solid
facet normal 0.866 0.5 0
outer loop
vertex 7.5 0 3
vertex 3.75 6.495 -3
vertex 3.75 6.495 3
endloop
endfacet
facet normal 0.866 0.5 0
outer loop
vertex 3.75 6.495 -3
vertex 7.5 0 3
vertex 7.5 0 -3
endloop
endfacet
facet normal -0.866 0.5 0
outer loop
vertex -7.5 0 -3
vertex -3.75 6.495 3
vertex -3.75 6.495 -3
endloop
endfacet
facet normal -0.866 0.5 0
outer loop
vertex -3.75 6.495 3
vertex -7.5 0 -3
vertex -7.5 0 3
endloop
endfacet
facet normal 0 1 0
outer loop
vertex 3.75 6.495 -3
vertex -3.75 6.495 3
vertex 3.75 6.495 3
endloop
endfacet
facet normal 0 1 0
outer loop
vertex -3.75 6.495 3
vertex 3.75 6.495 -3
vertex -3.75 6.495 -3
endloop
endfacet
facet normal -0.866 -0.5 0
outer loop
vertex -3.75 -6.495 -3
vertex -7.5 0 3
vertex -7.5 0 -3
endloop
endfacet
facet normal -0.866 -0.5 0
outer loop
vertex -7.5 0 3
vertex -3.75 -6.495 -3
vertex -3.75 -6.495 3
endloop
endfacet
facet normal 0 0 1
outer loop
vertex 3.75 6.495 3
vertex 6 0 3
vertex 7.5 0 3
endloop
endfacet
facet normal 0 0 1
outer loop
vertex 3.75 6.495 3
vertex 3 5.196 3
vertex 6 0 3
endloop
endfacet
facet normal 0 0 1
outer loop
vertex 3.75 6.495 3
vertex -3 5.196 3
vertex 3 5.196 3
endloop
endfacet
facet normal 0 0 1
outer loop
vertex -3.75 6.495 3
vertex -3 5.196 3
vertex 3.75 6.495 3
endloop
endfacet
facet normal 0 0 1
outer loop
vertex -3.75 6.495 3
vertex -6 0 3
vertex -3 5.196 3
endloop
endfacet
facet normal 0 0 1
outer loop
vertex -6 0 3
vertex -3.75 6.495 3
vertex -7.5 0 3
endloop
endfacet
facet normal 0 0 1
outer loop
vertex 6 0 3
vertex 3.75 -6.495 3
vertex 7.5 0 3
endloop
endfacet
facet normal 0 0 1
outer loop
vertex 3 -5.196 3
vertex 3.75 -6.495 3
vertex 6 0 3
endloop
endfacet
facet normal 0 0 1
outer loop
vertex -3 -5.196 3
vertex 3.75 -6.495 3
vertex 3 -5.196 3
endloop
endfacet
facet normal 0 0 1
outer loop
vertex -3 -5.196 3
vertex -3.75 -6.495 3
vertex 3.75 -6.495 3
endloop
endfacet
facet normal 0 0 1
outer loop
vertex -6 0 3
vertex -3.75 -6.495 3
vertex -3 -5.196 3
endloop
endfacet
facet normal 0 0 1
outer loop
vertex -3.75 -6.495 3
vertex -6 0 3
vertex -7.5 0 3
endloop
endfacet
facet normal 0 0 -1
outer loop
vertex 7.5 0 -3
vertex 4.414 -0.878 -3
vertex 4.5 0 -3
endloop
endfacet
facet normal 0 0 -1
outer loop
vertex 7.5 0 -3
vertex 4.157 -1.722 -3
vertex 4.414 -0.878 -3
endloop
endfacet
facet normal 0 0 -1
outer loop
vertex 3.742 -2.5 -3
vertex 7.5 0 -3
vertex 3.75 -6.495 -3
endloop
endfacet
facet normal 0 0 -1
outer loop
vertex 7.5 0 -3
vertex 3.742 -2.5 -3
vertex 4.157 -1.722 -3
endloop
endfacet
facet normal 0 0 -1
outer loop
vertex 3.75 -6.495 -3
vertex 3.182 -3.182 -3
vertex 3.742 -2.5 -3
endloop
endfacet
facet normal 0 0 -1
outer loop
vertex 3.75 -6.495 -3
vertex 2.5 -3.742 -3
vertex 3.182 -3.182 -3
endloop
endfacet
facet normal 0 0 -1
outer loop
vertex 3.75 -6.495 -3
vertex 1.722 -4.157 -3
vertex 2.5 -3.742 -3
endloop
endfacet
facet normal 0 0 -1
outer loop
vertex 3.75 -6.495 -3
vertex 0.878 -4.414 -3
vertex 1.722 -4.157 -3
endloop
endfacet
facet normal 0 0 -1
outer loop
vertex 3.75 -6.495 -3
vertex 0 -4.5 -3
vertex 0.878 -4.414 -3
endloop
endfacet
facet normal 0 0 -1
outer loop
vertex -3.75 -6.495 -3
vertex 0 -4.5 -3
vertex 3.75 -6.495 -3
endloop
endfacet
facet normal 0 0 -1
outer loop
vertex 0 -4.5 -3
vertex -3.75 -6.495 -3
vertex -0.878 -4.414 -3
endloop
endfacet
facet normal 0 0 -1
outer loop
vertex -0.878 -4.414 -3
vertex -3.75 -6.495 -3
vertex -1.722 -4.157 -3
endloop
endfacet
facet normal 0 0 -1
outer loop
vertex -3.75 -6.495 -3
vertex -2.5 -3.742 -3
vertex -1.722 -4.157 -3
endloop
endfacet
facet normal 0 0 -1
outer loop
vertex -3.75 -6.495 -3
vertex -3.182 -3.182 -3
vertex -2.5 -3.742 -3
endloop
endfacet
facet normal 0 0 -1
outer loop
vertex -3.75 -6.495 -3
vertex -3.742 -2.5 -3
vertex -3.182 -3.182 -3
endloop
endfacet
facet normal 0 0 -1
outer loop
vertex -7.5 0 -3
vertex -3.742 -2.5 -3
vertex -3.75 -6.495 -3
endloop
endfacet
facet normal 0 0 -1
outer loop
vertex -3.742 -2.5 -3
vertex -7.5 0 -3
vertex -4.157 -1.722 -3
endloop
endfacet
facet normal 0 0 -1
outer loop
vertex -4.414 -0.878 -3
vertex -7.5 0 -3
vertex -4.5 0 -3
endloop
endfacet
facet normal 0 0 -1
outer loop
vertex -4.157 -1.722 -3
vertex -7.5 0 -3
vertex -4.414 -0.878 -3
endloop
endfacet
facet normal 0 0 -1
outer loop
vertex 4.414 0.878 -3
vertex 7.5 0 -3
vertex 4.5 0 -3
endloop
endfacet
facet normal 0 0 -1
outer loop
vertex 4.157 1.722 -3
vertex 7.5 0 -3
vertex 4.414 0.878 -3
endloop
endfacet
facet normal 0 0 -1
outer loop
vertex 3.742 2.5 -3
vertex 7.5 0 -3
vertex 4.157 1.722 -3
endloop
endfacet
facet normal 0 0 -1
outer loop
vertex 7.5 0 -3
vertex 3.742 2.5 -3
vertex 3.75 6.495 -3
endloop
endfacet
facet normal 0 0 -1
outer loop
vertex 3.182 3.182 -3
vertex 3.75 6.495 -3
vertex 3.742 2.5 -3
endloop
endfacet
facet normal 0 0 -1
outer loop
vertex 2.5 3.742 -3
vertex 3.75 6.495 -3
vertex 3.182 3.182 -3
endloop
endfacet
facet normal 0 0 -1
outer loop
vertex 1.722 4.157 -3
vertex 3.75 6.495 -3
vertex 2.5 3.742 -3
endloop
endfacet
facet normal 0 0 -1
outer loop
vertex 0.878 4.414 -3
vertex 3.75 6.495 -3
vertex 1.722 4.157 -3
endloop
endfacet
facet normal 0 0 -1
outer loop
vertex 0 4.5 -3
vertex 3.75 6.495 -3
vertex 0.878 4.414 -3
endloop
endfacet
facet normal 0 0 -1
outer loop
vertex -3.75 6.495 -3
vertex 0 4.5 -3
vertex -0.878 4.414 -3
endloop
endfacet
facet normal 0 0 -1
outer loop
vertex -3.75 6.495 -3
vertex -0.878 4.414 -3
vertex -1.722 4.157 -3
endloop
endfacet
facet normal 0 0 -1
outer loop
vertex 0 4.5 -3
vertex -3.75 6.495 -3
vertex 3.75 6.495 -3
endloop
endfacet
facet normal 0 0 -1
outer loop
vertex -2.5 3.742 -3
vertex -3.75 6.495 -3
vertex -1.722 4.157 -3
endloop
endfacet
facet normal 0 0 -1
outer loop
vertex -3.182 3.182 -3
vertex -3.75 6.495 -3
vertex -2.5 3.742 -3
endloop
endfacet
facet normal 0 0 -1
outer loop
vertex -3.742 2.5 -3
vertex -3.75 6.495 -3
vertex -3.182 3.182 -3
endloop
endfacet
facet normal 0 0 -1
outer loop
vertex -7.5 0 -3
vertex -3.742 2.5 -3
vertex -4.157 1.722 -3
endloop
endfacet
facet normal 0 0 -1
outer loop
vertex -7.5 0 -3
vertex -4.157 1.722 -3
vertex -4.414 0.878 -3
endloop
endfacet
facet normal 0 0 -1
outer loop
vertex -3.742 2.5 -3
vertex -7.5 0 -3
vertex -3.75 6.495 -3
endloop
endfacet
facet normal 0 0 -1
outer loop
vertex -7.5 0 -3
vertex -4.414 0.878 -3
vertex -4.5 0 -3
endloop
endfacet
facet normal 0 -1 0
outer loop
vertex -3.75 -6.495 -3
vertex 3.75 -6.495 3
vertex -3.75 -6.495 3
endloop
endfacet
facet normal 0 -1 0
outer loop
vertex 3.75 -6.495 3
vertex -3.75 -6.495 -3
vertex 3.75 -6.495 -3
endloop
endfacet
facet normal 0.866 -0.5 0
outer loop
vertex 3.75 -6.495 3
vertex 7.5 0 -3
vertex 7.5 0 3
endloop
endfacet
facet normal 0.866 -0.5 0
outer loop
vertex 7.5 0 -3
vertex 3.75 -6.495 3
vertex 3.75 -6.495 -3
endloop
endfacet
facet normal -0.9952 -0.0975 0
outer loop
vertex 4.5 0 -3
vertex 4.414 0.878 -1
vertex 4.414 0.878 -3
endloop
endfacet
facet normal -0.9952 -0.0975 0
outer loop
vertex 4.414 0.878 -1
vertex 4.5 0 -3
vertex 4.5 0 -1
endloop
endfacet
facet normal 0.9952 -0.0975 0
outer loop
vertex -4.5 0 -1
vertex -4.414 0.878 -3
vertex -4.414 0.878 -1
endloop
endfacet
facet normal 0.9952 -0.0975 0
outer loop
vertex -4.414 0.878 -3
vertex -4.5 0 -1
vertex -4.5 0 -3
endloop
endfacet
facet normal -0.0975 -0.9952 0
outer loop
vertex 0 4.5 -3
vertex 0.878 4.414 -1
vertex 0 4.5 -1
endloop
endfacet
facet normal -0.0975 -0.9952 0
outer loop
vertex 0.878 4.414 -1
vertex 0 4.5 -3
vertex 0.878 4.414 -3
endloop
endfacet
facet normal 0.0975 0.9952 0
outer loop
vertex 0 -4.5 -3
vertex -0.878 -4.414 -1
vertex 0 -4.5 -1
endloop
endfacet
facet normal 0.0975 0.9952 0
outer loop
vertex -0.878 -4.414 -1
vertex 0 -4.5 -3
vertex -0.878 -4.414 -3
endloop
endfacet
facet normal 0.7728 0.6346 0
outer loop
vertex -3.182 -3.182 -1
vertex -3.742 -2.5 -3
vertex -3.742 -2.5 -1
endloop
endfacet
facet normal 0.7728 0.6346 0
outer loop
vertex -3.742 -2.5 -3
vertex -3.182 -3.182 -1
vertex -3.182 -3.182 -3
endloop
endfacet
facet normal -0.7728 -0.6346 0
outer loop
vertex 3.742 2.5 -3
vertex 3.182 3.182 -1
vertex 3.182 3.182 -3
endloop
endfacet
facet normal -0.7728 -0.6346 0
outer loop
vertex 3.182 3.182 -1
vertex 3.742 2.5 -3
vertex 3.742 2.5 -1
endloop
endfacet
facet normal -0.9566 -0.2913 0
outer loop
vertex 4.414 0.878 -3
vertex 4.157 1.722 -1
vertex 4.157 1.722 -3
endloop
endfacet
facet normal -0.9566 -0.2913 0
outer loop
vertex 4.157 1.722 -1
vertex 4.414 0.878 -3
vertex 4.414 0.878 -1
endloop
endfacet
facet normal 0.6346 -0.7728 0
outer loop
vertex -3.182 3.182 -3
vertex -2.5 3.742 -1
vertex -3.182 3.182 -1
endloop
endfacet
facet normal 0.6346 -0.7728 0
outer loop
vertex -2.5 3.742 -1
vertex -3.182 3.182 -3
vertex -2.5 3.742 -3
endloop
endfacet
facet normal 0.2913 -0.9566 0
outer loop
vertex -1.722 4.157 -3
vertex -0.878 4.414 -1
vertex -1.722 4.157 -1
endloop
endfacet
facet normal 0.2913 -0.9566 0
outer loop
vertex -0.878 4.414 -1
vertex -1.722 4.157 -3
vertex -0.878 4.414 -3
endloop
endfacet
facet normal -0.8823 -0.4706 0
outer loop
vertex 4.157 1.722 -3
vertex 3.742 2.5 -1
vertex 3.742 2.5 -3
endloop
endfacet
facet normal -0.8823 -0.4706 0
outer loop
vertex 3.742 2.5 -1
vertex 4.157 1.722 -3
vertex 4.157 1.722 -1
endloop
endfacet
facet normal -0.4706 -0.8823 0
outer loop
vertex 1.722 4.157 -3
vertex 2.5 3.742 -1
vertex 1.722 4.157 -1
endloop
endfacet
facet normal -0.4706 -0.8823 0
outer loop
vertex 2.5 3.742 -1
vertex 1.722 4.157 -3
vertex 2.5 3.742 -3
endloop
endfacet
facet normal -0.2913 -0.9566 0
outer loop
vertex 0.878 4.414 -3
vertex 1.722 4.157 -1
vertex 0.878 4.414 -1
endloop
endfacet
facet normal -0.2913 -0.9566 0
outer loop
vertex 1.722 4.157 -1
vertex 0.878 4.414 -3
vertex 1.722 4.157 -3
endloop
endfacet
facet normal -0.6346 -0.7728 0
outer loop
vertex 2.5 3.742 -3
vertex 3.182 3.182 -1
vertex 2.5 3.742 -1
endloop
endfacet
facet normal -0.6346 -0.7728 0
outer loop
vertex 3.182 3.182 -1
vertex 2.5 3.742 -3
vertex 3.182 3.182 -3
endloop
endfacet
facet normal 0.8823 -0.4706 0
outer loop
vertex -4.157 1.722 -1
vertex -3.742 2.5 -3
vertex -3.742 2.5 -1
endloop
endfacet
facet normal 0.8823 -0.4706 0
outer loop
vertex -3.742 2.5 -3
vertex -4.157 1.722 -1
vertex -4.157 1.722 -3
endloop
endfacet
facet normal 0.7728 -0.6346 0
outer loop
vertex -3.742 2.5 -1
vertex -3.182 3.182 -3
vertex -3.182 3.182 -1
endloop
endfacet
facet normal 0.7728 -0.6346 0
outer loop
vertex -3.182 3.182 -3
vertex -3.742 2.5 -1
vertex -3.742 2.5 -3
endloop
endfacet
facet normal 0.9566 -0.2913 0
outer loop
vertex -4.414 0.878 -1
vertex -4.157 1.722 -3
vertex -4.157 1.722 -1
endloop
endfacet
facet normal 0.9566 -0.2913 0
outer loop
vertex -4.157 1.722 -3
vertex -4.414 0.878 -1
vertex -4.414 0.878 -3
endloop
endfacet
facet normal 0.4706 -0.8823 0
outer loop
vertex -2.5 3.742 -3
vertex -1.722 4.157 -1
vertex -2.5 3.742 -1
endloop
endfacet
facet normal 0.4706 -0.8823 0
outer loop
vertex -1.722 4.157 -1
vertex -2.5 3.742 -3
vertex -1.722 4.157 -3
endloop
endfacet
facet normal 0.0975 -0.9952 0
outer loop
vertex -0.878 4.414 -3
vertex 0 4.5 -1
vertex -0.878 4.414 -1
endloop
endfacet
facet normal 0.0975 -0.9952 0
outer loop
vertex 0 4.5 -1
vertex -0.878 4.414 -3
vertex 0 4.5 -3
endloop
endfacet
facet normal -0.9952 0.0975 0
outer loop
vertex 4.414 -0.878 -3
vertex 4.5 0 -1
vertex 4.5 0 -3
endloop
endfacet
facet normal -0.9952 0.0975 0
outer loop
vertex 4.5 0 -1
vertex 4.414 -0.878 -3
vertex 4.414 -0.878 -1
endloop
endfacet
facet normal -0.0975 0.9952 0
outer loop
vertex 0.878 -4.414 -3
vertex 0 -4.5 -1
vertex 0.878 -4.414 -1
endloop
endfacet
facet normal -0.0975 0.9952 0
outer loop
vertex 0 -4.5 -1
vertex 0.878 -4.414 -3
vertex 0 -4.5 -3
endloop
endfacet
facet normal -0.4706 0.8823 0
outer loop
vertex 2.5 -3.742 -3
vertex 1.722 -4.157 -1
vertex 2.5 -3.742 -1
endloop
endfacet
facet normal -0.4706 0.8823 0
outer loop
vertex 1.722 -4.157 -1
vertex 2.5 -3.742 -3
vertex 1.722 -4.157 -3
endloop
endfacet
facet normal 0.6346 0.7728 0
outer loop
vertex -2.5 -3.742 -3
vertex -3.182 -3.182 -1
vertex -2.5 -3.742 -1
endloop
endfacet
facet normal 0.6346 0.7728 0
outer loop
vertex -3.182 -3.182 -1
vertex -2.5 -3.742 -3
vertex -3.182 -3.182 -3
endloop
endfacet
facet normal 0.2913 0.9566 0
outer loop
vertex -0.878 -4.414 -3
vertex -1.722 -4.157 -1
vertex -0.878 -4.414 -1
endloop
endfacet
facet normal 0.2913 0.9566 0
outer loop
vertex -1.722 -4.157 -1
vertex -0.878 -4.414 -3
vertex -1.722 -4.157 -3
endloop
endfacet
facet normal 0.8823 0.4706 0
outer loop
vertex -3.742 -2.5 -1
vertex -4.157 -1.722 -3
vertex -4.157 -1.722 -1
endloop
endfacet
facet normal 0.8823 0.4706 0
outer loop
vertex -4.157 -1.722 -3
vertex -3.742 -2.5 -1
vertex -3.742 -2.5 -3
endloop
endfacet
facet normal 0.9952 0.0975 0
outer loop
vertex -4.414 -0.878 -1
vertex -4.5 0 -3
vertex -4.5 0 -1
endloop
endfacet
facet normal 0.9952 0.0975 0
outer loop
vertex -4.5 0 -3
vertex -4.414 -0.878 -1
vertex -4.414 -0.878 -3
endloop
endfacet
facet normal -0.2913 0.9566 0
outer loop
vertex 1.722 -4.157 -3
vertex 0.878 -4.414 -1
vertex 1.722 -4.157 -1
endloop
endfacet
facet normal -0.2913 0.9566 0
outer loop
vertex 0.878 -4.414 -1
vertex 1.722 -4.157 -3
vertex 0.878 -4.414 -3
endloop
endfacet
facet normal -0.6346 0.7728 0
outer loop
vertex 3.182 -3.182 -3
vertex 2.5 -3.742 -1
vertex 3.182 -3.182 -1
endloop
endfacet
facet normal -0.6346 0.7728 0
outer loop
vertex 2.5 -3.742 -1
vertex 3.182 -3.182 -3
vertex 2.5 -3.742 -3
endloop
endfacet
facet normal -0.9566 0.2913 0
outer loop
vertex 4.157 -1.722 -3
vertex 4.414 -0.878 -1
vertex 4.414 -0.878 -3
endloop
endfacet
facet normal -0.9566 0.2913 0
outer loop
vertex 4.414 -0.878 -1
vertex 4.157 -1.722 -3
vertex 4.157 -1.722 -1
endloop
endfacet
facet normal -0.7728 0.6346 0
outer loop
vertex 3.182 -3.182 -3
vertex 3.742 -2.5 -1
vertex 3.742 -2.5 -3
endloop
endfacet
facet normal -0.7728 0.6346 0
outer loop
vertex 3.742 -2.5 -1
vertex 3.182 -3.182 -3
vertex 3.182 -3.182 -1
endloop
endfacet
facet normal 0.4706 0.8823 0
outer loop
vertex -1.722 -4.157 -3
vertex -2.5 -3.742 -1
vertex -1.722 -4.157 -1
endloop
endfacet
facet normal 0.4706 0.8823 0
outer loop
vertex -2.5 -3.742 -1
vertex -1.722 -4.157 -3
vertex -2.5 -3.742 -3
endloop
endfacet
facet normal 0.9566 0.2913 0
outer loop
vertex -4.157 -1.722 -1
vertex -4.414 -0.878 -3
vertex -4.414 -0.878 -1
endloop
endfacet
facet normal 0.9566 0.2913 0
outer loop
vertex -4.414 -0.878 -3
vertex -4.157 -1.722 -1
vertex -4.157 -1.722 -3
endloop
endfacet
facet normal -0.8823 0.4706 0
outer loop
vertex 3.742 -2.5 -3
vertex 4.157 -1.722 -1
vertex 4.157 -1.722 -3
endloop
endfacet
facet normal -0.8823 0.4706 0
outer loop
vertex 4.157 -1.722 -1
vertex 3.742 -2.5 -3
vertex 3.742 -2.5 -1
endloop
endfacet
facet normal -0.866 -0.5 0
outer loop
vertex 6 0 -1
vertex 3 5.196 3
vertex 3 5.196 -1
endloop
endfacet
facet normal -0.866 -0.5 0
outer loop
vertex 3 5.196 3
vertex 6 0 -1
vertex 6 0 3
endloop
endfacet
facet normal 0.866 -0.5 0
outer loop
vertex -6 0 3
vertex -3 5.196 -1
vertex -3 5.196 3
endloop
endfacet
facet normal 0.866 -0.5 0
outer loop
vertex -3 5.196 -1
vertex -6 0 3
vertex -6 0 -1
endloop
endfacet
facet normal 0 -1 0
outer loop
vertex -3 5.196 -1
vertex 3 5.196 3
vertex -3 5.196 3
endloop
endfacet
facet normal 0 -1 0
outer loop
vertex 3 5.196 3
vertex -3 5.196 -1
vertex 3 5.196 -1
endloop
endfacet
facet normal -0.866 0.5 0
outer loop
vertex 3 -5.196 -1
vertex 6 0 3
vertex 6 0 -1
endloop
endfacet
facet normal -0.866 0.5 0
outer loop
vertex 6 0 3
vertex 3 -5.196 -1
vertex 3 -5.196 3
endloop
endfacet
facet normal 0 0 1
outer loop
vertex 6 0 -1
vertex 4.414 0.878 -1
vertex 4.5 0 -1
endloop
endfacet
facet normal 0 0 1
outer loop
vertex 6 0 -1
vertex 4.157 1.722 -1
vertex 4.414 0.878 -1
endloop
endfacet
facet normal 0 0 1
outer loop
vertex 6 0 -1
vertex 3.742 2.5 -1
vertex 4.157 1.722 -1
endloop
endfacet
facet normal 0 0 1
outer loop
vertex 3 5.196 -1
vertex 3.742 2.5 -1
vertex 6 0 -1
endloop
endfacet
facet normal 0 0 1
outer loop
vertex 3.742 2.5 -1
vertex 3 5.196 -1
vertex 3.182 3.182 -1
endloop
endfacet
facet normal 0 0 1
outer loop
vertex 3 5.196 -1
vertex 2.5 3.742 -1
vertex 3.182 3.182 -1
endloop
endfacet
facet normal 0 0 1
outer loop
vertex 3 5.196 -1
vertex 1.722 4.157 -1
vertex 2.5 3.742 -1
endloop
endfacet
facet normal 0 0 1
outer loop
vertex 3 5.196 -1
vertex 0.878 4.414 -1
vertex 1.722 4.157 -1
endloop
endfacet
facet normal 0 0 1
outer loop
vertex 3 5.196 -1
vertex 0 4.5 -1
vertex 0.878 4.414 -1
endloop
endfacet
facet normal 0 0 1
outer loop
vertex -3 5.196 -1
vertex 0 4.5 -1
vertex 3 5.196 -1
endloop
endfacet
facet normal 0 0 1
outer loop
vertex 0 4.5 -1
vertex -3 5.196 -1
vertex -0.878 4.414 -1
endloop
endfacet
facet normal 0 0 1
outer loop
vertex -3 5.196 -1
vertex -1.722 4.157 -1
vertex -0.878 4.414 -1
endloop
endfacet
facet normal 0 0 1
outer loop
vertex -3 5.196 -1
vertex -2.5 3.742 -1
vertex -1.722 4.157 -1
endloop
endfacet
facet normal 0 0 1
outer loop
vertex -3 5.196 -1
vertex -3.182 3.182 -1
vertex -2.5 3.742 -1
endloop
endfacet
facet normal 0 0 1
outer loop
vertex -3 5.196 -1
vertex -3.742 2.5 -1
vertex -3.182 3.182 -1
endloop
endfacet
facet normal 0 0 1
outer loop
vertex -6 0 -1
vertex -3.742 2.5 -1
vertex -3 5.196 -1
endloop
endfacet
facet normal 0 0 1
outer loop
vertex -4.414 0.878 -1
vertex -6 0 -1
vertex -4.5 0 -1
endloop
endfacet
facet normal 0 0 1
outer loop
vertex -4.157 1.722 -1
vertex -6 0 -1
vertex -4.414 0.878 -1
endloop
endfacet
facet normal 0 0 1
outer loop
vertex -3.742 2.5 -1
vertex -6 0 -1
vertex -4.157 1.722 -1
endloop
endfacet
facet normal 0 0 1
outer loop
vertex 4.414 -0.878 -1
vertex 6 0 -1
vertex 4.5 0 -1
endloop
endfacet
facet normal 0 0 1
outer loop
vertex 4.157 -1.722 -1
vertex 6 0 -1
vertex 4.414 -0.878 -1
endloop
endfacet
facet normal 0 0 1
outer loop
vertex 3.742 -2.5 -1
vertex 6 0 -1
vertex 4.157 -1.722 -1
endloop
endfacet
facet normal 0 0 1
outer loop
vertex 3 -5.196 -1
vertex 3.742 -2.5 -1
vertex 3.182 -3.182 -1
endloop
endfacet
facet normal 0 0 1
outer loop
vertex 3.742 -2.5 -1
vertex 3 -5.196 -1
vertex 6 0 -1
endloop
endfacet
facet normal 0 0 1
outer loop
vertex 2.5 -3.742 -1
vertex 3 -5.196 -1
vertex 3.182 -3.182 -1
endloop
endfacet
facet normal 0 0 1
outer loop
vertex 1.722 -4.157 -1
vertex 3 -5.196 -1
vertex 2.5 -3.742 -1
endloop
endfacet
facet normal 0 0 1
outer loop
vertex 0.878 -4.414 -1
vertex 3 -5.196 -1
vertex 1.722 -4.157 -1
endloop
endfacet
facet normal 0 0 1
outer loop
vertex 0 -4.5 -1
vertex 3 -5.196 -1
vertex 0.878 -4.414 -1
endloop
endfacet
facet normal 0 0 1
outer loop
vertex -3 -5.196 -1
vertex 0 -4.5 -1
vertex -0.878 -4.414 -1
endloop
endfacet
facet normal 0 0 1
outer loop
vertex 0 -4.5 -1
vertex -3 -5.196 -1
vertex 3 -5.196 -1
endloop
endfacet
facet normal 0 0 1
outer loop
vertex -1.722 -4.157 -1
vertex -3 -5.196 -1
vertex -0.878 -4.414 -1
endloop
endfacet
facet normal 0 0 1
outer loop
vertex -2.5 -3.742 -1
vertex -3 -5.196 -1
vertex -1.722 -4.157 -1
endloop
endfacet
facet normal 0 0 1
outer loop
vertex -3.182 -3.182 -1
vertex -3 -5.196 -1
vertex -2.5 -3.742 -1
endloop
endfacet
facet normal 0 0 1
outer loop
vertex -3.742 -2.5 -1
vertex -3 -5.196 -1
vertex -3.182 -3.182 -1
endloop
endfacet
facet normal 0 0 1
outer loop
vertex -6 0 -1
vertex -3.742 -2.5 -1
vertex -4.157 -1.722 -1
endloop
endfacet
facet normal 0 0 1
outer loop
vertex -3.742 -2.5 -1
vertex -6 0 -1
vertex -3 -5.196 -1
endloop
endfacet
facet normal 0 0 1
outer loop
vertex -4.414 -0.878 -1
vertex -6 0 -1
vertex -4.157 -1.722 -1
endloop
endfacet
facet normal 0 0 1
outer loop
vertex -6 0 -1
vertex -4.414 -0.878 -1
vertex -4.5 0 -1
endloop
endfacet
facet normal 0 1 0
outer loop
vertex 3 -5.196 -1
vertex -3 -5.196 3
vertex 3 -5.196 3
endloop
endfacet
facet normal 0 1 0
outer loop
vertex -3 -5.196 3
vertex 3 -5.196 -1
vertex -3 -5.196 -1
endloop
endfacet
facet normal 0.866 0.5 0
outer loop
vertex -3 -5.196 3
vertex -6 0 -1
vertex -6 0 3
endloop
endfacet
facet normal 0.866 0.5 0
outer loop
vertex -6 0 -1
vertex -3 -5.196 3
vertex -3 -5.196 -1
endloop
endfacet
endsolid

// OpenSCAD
difference(){

cylinder(r=7.5, h=6, center=true, $fn=6);
cylinder(r=4.5, h=7, center=true, $fn=32);
    translate([0,0,2]) cylinder(r=6, h=6, center=true, $fn=6);
    
}
